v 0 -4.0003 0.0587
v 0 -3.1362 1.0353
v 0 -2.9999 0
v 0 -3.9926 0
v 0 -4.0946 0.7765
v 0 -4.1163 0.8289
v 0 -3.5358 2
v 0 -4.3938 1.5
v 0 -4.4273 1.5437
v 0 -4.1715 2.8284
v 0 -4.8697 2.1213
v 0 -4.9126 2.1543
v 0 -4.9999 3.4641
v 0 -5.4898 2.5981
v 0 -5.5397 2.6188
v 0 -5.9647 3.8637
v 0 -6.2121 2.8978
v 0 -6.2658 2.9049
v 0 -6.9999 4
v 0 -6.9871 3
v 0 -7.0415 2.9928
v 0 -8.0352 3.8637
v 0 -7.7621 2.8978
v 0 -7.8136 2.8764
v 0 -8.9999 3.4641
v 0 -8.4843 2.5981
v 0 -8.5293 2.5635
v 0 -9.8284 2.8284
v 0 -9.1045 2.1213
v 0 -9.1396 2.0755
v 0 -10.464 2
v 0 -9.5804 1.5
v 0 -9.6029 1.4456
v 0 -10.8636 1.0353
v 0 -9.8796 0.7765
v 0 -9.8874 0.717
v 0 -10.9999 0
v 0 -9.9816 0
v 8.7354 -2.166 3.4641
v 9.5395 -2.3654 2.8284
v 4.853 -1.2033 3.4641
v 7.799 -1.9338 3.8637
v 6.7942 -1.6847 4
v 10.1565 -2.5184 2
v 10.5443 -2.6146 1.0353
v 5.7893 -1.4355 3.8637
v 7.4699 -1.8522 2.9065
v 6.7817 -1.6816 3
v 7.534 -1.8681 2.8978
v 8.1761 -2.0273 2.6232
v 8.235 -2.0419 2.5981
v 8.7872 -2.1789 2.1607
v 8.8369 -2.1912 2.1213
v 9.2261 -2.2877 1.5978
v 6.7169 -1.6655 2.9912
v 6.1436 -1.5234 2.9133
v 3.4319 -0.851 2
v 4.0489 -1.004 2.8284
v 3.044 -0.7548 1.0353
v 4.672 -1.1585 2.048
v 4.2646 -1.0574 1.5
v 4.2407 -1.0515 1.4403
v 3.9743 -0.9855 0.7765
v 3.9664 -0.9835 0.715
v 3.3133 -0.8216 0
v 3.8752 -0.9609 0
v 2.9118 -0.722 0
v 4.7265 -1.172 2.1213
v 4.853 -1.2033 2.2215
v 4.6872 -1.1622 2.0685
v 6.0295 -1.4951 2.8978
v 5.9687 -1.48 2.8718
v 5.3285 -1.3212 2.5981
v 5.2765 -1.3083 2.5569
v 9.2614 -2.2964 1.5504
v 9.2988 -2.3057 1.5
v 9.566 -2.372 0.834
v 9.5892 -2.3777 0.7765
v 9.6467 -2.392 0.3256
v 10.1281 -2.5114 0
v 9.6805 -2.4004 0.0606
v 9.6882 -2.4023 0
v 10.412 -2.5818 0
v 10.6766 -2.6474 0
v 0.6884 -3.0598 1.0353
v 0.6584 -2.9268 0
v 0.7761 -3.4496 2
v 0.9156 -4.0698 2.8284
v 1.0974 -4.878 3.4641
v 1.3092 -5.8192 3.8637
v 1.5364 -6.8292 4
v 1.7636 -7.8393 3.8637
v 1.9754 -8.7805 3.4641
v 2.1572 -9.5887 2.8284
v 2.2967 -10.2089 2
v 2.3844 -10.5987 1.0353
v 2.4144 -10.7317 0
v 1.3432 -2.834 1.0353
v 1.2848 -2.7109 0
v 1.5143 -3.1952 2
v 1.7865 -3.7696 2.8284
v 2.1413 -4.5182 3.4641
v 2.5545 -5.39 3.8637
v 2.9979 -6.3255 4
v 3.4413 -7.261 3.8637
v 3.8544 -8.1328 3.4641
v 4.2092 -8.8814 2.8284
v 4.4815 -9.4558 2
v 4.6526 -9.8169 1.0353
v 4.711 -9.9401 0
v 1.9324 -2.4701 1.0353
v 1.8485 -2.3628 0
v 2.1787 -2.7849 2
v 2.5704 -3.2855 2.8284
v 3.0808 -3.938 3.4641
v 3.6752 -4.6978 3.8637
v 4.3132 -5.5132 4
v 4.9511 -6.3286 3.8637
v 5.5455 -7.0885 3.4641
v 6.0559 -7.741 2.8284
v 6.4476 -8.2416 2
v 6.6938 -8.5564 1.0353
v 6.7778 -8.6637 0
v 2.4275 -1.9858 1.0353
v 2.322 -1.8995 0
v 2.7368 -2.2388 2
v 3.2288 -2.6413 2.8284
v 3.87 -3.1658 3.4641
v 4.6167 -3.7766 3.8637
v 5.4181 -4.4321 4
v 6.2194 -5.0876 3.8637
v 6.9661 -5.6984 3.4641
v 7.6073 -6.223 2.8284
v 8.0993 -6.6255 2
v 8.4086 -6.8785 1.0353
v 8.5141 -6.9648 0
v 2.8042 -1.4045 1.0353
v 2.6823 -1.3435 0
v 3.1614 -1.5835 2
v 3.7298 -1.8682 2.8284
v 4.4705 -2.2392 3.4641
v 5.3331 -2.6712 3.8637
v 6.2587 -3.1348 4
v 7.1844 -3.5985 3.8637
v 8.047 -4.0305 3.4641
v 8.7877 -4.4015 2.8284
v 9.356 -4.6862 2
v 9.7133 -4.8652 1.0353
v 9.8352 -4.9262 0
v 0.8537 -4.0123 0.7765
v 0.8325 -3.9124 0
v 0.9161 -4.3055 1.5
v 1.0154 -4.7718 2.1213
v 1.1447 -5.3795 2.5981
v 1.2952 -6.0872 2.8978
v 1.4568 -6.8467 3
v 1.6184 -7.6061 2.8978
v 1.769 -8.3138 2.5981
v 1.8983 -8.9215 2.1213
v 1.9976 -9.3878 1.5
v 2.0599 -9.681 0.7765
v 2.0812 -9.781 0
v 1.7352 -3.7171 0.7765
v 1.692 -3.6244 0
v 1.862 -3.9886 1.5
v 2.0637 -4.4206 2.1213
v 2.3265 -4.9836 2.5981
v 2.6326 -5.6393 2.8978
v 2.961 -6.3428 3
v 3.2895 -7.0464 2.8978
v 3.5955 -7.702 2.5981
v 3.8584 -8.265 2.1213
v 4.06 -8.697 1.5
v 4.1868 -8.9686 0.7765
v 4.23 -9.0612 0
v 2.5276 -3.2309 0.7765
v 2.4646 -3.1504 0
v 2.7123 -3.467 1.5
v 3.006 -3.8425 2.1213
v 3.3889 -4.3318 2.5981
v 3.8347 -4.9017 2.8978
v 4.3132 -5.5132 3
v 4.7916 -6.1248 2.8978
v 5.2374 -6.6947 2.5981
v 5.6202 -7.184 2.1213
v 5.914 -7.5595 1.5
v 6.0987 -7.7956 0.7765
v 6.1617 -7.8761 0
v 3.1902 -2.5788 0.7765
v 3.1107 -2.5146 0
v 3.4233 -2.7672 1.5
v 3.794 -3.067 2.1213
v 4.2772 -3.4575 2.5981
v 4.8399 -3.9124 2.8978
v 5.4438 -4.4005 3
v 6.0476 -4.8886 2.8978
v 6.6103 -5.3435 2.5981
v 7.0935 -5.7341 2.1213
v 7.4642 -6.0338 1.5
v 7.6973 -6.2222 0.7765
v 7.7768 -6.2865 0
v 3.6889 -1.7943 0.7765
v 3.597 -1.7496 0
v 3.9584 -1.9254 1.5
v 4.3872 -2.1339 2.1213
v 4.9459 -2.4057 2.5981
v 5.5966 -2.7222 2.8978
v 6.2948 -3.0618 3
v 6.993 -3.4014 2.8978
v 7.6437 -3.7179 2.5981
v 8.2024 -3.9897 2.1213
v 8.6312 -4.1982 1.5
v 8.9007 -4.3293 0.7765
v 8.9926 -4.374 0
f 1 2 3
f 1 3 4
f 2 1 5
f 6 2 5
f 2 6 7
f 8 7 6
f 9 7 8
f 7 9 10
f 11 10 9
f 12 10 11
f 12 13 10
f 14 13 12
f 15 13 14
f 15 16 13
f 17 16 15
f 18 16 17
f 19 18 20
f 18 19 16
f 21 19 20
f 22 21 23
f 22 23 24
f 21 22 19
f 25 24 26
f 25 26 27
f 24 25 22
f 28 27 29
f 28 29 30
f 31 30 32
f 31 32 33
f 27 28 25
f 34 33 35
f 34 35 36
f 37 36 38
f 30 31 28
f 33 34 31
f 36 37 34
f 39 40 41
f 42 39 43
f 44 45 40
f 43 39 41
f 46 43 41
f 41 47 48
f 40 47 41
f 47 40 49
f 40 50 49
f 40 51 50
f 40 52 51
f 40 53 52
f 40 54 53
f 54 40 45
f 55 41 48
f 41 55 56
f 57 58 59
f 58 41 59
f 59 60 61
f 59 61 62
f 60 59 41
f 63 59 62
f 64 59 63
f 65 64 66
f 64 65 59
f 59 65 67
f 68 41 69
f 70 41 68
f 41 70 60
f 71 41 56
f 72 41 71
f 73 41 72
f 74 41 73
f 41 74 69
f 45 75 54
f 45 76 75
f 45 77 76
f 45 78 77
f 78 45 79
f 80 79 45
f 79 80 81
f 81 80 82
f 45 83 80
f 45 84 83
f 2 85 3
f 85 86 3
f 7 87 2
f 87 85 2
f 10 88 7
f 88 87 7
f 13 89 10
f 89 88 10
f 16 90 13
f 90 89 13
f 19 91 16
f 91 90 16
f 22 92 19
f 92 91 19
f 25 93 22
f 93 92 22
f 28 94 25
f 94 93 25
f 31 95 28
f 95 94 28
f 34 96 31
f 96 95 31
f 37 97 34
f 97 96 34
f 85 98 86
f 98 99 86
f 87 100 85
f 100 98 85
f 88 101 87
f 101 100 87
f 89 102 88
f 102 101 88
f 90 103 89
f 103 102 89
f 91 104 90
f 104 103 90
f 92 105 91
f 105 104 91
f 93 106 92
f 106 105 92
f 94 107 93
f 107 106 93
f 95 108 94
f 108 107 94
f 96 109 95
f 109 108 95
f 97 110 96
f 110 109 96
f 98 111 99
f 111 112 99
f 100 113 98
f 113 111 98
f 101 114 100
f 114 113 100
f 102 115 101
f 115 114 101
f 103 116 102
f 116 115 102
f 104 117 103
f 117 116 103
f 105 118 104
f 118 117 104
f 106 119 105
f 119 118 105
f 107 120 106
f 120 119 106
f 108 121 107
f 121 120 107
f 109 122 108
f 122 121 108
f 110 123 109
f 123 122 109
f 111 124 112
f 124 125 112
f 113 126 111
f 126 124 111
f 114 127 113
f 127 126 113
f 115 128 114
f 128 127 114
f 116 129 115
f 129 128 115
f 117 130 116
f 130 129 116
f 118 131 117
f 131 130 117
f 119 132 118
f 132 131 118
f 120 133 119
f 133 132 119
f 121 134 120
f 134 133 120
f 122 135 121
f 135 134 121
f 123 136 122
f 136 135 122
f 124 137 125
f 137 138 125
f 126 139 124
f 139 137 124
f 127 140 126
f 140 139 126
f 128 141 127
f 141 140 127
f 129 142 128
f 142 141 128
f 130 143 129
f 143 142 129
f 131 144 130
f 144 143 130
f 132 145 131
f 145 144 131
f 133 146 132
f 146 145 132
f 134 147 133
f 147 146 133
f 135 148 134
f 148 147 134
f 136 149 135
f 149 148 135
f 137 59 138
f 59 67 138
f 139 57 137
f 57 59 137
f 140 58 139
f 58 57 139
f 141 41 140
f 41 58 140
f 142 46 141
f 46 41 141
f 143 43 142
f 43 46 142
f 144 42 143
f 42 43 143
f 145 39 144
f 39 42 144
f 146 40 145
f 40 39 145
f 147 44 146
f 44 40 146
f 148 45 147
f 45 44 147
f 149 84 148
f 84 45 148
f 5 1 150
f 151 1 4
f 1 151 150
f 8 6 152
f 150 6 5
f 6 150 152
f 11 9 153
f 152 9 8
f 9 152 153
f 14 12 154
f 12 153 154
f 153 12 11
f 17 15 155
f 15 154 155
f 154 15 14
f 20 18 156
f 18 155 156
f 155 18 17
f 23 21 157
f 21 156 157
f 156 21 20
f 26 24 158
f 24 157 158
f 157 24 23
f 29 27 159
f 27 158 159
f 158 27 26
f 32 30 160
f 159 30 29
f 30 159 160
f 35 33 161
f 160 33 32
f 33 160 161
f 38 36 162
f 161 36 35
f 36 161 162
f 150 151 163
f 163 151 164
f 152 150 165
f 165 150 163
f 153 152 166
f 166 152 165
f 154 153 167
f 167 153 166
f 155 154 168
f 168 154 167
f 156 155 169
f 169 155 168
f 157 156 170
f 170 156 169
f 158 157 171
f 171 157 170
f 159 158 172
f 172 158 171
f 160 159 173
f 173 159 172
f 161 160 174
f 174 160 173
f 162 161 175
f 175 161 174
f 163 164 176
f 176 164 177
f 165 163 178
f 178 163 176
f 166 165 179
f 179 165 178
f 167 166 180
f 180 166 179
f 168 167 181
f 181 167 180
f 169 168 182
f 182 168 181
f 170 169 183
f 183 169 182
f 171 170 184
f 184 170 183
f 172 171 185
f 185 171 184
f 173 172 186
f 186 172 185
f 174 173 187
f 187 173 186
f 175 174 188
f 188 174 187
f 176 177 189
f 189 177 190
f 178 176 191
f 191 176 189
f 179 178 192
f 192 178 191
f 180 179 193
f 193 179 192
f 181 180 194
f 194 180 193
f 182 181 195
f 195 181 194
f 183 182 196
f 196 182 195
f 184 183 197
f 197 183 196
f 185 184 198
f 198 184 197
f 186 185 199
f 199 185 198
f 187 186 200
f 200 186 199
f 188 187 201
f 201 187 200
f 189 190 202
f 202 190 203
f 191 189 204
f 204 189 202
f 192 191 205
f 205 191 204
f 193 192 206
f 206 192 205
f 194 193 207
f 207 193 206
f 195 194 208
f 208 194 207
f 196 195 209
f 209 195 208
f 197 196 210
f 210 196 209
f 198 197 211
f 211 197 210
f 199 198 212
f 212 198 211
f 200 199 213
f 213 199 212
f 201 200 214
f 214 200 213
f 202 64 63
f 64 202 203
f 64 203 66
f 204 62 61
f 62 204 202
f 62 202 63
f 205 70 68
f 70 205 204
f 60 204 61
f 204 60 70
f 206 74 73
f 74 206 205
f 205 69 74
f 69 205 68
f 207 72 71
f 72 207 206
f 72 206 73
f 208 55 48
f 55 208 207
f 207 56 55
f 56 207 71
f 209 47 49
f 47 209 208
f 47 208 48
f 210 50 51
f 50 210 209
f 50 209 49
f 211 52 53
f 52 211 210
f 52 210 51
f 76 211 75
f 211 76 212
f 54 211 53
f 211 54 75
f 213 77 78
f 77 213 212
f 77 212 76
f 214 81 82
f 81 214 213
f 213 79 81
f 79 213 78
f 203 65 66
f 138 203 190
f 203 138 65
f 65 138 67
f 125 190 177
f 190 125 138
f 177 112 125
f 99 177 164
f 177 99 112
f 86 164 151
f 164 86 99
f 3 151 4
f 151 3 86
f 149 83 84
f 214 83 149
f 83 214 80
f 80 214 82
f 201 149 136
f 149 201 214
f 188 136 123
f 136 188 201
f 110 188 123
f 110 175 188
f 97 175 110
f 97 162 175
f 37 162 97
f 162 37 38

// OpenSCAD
// file: ../build_environments.scad
// build_environments.scad: modules to build level sections
//

module pool(diameter=10.0, wall_height=2.0, step_width=3.0, connections=[])
{
    difference() {
        union() {
        difference() {
            cylinder(h=0.5,r1=diameter+step_width,r2=diameter+step_width,$fn=48);
            translate([0,0,-0.1])
                cylinder(h=0.7,r1=diameter,r2=diameter,$fn=48);
        }
        difference() {
            cylinder(h=wall_height,r1=diameter+step_width+1.0,r2=diameter+step_width+1.0,$fn=48);
            translate([0,0,-0.1])
                cylinder(h=wall_height+0.2,r1=diameter+step_width,r2=diameter+step_width,$fn=48);
        }
        }
    
        for (c = connections)
        {
            rotate([0,90,0]) {
                angle = atan2(c[1],c[0]);
                rotate([-angle,0,0]) {
                    cylinder(h=diameter+5.0,r1=c[2],r2=c[2],$fn=48);
                }
            }
        }
    }
}

module straight(length=10.0, width=2.0, dy1=0.0, dy2=0.0, dz=0.0)
{
    dims = [0, 0, 0, 0, 0, (dz/length)];
    matrix = [
        [ 1, dims[0], dims[1], 0 ],
        [ dims[2], 1, dims[4], 0 ],
        [ dims[5], dims[3], 1, 0 ],
        [ 0, 0, 0, 1 ]
    ];
    multmatrix(matrix)
    difference() {
        translate([dy1,0,0])
        union() {
            rotate([0,90,0]) {
                difference() {
                    cylinder(h=(length-dy1-dy2),r1=width+1.0,r2=width+1.0,$fn=24);
                    translate([0,0,-0.1])
                        cylinder(h=(length-dy1-dy2+0.2),r1=width,r2=width,$fn=24);
                }
                difference() {
                    cylinder(h=1.0,r1=width+2.0,r2=width+2.0,$fn=24);
                    translate([0,0,-0.1])
                        cylinder(h=1.2,r1=width,r2=width,$fn=24);
                }
                translate([0,0,(length-dy1-dy2)-1.0]) {
                    difference() {
                        cylinder(h=1.0,r1=width+2.0,r2=width+2.0,$fn=24);
                        translate([0,0,-0.1])
                            cylinder(h=1.2,r1=width,r2=width,$fn=24);
                    }
                }
            }
        }
        translate([0,0,-(2*width+4.0)/2])
            cube([3*length,3*length,2*width+4.0],center=true);
    }
}

module curve(p0=[0,0], center=[0,0], dir=1, angle=0.0, width=2.0)
{
    radius = sqrt((p0[0]-center[0])*(p0[0]-center[0]) + (p0[1]-center[1])*(p0[1]-center[1]));
    if (dir == 0) {
        difference() {
            rotate([0,0,-90])
            difference() {
                rotate_extrude(angle = angle, convexity = 10, $fn=32)
                    translate([radius, 0, 0])
                        circle(r = width+1.0,$fn=24);
                rotate([0,0,-1.0])
                    rotate_extrude(angle = angle+2.0, convexity = 10, $fn=32)
                        translate([radius, 0, 0])
                            circle(r = width,$fn=24);
            }
            translate([0,0,-(2*width+4.0)/2])
                cube([5*radius,5*radius,2*width+4.0],center=true);
        }
    }
    else {
        difference() {
            rotate([0,0,90])
            difference() {
                rotate_extrude(angle = -angle, convexity = 10, $fn=32)
                    translate([radius, 0, 0])
                        circle(r = width+1.0,$fn=24);
                rotate([0,0,1.0])
                    rotate_extrude(angle = -angle-2.0, convexity = 10, $fn=32)
                        translate([radius, 0, 0])
                            circle(r = width,$fn=24);
            }
            translate([0,0,-(2*width+4.0)/2])
                cube([5*radius,5*radius,2*width+4.0],center=true);
        }
    }

}

// test pool
//pool(diameter=12.0000, wall_height=3.0000, step_width=3.0000, connections=[[0.0000,-26.0000,2.0000], [23.6074,0.0000,2.0000]]);

// test straight, slope
//straight(length=26.0000, width=2.0000, dy1=11.8322, dy2=6.7082, dz=0.0000);
//straight(length=29.1549, width=12.0000, dy1=0.0000, dy2=0.0000, dz=-15.0000);

// test curve
//curve(p0=[23.6074, 0.0000], center=[23.6074, 5.0000], dir=0, angle=60.1011, width=2.0000);
//curve(p0=[33.6426, 12.4219], center=[37.9771, 9.9295], dir=1, angle=120.4627, width=2.0000);
// main file
use <../build_environments.scad>;
curve(p0=[20.9581, 18.1177], center=[16.6072, 23.6012], dir=0, angle=76.0739, width=3.0000);
